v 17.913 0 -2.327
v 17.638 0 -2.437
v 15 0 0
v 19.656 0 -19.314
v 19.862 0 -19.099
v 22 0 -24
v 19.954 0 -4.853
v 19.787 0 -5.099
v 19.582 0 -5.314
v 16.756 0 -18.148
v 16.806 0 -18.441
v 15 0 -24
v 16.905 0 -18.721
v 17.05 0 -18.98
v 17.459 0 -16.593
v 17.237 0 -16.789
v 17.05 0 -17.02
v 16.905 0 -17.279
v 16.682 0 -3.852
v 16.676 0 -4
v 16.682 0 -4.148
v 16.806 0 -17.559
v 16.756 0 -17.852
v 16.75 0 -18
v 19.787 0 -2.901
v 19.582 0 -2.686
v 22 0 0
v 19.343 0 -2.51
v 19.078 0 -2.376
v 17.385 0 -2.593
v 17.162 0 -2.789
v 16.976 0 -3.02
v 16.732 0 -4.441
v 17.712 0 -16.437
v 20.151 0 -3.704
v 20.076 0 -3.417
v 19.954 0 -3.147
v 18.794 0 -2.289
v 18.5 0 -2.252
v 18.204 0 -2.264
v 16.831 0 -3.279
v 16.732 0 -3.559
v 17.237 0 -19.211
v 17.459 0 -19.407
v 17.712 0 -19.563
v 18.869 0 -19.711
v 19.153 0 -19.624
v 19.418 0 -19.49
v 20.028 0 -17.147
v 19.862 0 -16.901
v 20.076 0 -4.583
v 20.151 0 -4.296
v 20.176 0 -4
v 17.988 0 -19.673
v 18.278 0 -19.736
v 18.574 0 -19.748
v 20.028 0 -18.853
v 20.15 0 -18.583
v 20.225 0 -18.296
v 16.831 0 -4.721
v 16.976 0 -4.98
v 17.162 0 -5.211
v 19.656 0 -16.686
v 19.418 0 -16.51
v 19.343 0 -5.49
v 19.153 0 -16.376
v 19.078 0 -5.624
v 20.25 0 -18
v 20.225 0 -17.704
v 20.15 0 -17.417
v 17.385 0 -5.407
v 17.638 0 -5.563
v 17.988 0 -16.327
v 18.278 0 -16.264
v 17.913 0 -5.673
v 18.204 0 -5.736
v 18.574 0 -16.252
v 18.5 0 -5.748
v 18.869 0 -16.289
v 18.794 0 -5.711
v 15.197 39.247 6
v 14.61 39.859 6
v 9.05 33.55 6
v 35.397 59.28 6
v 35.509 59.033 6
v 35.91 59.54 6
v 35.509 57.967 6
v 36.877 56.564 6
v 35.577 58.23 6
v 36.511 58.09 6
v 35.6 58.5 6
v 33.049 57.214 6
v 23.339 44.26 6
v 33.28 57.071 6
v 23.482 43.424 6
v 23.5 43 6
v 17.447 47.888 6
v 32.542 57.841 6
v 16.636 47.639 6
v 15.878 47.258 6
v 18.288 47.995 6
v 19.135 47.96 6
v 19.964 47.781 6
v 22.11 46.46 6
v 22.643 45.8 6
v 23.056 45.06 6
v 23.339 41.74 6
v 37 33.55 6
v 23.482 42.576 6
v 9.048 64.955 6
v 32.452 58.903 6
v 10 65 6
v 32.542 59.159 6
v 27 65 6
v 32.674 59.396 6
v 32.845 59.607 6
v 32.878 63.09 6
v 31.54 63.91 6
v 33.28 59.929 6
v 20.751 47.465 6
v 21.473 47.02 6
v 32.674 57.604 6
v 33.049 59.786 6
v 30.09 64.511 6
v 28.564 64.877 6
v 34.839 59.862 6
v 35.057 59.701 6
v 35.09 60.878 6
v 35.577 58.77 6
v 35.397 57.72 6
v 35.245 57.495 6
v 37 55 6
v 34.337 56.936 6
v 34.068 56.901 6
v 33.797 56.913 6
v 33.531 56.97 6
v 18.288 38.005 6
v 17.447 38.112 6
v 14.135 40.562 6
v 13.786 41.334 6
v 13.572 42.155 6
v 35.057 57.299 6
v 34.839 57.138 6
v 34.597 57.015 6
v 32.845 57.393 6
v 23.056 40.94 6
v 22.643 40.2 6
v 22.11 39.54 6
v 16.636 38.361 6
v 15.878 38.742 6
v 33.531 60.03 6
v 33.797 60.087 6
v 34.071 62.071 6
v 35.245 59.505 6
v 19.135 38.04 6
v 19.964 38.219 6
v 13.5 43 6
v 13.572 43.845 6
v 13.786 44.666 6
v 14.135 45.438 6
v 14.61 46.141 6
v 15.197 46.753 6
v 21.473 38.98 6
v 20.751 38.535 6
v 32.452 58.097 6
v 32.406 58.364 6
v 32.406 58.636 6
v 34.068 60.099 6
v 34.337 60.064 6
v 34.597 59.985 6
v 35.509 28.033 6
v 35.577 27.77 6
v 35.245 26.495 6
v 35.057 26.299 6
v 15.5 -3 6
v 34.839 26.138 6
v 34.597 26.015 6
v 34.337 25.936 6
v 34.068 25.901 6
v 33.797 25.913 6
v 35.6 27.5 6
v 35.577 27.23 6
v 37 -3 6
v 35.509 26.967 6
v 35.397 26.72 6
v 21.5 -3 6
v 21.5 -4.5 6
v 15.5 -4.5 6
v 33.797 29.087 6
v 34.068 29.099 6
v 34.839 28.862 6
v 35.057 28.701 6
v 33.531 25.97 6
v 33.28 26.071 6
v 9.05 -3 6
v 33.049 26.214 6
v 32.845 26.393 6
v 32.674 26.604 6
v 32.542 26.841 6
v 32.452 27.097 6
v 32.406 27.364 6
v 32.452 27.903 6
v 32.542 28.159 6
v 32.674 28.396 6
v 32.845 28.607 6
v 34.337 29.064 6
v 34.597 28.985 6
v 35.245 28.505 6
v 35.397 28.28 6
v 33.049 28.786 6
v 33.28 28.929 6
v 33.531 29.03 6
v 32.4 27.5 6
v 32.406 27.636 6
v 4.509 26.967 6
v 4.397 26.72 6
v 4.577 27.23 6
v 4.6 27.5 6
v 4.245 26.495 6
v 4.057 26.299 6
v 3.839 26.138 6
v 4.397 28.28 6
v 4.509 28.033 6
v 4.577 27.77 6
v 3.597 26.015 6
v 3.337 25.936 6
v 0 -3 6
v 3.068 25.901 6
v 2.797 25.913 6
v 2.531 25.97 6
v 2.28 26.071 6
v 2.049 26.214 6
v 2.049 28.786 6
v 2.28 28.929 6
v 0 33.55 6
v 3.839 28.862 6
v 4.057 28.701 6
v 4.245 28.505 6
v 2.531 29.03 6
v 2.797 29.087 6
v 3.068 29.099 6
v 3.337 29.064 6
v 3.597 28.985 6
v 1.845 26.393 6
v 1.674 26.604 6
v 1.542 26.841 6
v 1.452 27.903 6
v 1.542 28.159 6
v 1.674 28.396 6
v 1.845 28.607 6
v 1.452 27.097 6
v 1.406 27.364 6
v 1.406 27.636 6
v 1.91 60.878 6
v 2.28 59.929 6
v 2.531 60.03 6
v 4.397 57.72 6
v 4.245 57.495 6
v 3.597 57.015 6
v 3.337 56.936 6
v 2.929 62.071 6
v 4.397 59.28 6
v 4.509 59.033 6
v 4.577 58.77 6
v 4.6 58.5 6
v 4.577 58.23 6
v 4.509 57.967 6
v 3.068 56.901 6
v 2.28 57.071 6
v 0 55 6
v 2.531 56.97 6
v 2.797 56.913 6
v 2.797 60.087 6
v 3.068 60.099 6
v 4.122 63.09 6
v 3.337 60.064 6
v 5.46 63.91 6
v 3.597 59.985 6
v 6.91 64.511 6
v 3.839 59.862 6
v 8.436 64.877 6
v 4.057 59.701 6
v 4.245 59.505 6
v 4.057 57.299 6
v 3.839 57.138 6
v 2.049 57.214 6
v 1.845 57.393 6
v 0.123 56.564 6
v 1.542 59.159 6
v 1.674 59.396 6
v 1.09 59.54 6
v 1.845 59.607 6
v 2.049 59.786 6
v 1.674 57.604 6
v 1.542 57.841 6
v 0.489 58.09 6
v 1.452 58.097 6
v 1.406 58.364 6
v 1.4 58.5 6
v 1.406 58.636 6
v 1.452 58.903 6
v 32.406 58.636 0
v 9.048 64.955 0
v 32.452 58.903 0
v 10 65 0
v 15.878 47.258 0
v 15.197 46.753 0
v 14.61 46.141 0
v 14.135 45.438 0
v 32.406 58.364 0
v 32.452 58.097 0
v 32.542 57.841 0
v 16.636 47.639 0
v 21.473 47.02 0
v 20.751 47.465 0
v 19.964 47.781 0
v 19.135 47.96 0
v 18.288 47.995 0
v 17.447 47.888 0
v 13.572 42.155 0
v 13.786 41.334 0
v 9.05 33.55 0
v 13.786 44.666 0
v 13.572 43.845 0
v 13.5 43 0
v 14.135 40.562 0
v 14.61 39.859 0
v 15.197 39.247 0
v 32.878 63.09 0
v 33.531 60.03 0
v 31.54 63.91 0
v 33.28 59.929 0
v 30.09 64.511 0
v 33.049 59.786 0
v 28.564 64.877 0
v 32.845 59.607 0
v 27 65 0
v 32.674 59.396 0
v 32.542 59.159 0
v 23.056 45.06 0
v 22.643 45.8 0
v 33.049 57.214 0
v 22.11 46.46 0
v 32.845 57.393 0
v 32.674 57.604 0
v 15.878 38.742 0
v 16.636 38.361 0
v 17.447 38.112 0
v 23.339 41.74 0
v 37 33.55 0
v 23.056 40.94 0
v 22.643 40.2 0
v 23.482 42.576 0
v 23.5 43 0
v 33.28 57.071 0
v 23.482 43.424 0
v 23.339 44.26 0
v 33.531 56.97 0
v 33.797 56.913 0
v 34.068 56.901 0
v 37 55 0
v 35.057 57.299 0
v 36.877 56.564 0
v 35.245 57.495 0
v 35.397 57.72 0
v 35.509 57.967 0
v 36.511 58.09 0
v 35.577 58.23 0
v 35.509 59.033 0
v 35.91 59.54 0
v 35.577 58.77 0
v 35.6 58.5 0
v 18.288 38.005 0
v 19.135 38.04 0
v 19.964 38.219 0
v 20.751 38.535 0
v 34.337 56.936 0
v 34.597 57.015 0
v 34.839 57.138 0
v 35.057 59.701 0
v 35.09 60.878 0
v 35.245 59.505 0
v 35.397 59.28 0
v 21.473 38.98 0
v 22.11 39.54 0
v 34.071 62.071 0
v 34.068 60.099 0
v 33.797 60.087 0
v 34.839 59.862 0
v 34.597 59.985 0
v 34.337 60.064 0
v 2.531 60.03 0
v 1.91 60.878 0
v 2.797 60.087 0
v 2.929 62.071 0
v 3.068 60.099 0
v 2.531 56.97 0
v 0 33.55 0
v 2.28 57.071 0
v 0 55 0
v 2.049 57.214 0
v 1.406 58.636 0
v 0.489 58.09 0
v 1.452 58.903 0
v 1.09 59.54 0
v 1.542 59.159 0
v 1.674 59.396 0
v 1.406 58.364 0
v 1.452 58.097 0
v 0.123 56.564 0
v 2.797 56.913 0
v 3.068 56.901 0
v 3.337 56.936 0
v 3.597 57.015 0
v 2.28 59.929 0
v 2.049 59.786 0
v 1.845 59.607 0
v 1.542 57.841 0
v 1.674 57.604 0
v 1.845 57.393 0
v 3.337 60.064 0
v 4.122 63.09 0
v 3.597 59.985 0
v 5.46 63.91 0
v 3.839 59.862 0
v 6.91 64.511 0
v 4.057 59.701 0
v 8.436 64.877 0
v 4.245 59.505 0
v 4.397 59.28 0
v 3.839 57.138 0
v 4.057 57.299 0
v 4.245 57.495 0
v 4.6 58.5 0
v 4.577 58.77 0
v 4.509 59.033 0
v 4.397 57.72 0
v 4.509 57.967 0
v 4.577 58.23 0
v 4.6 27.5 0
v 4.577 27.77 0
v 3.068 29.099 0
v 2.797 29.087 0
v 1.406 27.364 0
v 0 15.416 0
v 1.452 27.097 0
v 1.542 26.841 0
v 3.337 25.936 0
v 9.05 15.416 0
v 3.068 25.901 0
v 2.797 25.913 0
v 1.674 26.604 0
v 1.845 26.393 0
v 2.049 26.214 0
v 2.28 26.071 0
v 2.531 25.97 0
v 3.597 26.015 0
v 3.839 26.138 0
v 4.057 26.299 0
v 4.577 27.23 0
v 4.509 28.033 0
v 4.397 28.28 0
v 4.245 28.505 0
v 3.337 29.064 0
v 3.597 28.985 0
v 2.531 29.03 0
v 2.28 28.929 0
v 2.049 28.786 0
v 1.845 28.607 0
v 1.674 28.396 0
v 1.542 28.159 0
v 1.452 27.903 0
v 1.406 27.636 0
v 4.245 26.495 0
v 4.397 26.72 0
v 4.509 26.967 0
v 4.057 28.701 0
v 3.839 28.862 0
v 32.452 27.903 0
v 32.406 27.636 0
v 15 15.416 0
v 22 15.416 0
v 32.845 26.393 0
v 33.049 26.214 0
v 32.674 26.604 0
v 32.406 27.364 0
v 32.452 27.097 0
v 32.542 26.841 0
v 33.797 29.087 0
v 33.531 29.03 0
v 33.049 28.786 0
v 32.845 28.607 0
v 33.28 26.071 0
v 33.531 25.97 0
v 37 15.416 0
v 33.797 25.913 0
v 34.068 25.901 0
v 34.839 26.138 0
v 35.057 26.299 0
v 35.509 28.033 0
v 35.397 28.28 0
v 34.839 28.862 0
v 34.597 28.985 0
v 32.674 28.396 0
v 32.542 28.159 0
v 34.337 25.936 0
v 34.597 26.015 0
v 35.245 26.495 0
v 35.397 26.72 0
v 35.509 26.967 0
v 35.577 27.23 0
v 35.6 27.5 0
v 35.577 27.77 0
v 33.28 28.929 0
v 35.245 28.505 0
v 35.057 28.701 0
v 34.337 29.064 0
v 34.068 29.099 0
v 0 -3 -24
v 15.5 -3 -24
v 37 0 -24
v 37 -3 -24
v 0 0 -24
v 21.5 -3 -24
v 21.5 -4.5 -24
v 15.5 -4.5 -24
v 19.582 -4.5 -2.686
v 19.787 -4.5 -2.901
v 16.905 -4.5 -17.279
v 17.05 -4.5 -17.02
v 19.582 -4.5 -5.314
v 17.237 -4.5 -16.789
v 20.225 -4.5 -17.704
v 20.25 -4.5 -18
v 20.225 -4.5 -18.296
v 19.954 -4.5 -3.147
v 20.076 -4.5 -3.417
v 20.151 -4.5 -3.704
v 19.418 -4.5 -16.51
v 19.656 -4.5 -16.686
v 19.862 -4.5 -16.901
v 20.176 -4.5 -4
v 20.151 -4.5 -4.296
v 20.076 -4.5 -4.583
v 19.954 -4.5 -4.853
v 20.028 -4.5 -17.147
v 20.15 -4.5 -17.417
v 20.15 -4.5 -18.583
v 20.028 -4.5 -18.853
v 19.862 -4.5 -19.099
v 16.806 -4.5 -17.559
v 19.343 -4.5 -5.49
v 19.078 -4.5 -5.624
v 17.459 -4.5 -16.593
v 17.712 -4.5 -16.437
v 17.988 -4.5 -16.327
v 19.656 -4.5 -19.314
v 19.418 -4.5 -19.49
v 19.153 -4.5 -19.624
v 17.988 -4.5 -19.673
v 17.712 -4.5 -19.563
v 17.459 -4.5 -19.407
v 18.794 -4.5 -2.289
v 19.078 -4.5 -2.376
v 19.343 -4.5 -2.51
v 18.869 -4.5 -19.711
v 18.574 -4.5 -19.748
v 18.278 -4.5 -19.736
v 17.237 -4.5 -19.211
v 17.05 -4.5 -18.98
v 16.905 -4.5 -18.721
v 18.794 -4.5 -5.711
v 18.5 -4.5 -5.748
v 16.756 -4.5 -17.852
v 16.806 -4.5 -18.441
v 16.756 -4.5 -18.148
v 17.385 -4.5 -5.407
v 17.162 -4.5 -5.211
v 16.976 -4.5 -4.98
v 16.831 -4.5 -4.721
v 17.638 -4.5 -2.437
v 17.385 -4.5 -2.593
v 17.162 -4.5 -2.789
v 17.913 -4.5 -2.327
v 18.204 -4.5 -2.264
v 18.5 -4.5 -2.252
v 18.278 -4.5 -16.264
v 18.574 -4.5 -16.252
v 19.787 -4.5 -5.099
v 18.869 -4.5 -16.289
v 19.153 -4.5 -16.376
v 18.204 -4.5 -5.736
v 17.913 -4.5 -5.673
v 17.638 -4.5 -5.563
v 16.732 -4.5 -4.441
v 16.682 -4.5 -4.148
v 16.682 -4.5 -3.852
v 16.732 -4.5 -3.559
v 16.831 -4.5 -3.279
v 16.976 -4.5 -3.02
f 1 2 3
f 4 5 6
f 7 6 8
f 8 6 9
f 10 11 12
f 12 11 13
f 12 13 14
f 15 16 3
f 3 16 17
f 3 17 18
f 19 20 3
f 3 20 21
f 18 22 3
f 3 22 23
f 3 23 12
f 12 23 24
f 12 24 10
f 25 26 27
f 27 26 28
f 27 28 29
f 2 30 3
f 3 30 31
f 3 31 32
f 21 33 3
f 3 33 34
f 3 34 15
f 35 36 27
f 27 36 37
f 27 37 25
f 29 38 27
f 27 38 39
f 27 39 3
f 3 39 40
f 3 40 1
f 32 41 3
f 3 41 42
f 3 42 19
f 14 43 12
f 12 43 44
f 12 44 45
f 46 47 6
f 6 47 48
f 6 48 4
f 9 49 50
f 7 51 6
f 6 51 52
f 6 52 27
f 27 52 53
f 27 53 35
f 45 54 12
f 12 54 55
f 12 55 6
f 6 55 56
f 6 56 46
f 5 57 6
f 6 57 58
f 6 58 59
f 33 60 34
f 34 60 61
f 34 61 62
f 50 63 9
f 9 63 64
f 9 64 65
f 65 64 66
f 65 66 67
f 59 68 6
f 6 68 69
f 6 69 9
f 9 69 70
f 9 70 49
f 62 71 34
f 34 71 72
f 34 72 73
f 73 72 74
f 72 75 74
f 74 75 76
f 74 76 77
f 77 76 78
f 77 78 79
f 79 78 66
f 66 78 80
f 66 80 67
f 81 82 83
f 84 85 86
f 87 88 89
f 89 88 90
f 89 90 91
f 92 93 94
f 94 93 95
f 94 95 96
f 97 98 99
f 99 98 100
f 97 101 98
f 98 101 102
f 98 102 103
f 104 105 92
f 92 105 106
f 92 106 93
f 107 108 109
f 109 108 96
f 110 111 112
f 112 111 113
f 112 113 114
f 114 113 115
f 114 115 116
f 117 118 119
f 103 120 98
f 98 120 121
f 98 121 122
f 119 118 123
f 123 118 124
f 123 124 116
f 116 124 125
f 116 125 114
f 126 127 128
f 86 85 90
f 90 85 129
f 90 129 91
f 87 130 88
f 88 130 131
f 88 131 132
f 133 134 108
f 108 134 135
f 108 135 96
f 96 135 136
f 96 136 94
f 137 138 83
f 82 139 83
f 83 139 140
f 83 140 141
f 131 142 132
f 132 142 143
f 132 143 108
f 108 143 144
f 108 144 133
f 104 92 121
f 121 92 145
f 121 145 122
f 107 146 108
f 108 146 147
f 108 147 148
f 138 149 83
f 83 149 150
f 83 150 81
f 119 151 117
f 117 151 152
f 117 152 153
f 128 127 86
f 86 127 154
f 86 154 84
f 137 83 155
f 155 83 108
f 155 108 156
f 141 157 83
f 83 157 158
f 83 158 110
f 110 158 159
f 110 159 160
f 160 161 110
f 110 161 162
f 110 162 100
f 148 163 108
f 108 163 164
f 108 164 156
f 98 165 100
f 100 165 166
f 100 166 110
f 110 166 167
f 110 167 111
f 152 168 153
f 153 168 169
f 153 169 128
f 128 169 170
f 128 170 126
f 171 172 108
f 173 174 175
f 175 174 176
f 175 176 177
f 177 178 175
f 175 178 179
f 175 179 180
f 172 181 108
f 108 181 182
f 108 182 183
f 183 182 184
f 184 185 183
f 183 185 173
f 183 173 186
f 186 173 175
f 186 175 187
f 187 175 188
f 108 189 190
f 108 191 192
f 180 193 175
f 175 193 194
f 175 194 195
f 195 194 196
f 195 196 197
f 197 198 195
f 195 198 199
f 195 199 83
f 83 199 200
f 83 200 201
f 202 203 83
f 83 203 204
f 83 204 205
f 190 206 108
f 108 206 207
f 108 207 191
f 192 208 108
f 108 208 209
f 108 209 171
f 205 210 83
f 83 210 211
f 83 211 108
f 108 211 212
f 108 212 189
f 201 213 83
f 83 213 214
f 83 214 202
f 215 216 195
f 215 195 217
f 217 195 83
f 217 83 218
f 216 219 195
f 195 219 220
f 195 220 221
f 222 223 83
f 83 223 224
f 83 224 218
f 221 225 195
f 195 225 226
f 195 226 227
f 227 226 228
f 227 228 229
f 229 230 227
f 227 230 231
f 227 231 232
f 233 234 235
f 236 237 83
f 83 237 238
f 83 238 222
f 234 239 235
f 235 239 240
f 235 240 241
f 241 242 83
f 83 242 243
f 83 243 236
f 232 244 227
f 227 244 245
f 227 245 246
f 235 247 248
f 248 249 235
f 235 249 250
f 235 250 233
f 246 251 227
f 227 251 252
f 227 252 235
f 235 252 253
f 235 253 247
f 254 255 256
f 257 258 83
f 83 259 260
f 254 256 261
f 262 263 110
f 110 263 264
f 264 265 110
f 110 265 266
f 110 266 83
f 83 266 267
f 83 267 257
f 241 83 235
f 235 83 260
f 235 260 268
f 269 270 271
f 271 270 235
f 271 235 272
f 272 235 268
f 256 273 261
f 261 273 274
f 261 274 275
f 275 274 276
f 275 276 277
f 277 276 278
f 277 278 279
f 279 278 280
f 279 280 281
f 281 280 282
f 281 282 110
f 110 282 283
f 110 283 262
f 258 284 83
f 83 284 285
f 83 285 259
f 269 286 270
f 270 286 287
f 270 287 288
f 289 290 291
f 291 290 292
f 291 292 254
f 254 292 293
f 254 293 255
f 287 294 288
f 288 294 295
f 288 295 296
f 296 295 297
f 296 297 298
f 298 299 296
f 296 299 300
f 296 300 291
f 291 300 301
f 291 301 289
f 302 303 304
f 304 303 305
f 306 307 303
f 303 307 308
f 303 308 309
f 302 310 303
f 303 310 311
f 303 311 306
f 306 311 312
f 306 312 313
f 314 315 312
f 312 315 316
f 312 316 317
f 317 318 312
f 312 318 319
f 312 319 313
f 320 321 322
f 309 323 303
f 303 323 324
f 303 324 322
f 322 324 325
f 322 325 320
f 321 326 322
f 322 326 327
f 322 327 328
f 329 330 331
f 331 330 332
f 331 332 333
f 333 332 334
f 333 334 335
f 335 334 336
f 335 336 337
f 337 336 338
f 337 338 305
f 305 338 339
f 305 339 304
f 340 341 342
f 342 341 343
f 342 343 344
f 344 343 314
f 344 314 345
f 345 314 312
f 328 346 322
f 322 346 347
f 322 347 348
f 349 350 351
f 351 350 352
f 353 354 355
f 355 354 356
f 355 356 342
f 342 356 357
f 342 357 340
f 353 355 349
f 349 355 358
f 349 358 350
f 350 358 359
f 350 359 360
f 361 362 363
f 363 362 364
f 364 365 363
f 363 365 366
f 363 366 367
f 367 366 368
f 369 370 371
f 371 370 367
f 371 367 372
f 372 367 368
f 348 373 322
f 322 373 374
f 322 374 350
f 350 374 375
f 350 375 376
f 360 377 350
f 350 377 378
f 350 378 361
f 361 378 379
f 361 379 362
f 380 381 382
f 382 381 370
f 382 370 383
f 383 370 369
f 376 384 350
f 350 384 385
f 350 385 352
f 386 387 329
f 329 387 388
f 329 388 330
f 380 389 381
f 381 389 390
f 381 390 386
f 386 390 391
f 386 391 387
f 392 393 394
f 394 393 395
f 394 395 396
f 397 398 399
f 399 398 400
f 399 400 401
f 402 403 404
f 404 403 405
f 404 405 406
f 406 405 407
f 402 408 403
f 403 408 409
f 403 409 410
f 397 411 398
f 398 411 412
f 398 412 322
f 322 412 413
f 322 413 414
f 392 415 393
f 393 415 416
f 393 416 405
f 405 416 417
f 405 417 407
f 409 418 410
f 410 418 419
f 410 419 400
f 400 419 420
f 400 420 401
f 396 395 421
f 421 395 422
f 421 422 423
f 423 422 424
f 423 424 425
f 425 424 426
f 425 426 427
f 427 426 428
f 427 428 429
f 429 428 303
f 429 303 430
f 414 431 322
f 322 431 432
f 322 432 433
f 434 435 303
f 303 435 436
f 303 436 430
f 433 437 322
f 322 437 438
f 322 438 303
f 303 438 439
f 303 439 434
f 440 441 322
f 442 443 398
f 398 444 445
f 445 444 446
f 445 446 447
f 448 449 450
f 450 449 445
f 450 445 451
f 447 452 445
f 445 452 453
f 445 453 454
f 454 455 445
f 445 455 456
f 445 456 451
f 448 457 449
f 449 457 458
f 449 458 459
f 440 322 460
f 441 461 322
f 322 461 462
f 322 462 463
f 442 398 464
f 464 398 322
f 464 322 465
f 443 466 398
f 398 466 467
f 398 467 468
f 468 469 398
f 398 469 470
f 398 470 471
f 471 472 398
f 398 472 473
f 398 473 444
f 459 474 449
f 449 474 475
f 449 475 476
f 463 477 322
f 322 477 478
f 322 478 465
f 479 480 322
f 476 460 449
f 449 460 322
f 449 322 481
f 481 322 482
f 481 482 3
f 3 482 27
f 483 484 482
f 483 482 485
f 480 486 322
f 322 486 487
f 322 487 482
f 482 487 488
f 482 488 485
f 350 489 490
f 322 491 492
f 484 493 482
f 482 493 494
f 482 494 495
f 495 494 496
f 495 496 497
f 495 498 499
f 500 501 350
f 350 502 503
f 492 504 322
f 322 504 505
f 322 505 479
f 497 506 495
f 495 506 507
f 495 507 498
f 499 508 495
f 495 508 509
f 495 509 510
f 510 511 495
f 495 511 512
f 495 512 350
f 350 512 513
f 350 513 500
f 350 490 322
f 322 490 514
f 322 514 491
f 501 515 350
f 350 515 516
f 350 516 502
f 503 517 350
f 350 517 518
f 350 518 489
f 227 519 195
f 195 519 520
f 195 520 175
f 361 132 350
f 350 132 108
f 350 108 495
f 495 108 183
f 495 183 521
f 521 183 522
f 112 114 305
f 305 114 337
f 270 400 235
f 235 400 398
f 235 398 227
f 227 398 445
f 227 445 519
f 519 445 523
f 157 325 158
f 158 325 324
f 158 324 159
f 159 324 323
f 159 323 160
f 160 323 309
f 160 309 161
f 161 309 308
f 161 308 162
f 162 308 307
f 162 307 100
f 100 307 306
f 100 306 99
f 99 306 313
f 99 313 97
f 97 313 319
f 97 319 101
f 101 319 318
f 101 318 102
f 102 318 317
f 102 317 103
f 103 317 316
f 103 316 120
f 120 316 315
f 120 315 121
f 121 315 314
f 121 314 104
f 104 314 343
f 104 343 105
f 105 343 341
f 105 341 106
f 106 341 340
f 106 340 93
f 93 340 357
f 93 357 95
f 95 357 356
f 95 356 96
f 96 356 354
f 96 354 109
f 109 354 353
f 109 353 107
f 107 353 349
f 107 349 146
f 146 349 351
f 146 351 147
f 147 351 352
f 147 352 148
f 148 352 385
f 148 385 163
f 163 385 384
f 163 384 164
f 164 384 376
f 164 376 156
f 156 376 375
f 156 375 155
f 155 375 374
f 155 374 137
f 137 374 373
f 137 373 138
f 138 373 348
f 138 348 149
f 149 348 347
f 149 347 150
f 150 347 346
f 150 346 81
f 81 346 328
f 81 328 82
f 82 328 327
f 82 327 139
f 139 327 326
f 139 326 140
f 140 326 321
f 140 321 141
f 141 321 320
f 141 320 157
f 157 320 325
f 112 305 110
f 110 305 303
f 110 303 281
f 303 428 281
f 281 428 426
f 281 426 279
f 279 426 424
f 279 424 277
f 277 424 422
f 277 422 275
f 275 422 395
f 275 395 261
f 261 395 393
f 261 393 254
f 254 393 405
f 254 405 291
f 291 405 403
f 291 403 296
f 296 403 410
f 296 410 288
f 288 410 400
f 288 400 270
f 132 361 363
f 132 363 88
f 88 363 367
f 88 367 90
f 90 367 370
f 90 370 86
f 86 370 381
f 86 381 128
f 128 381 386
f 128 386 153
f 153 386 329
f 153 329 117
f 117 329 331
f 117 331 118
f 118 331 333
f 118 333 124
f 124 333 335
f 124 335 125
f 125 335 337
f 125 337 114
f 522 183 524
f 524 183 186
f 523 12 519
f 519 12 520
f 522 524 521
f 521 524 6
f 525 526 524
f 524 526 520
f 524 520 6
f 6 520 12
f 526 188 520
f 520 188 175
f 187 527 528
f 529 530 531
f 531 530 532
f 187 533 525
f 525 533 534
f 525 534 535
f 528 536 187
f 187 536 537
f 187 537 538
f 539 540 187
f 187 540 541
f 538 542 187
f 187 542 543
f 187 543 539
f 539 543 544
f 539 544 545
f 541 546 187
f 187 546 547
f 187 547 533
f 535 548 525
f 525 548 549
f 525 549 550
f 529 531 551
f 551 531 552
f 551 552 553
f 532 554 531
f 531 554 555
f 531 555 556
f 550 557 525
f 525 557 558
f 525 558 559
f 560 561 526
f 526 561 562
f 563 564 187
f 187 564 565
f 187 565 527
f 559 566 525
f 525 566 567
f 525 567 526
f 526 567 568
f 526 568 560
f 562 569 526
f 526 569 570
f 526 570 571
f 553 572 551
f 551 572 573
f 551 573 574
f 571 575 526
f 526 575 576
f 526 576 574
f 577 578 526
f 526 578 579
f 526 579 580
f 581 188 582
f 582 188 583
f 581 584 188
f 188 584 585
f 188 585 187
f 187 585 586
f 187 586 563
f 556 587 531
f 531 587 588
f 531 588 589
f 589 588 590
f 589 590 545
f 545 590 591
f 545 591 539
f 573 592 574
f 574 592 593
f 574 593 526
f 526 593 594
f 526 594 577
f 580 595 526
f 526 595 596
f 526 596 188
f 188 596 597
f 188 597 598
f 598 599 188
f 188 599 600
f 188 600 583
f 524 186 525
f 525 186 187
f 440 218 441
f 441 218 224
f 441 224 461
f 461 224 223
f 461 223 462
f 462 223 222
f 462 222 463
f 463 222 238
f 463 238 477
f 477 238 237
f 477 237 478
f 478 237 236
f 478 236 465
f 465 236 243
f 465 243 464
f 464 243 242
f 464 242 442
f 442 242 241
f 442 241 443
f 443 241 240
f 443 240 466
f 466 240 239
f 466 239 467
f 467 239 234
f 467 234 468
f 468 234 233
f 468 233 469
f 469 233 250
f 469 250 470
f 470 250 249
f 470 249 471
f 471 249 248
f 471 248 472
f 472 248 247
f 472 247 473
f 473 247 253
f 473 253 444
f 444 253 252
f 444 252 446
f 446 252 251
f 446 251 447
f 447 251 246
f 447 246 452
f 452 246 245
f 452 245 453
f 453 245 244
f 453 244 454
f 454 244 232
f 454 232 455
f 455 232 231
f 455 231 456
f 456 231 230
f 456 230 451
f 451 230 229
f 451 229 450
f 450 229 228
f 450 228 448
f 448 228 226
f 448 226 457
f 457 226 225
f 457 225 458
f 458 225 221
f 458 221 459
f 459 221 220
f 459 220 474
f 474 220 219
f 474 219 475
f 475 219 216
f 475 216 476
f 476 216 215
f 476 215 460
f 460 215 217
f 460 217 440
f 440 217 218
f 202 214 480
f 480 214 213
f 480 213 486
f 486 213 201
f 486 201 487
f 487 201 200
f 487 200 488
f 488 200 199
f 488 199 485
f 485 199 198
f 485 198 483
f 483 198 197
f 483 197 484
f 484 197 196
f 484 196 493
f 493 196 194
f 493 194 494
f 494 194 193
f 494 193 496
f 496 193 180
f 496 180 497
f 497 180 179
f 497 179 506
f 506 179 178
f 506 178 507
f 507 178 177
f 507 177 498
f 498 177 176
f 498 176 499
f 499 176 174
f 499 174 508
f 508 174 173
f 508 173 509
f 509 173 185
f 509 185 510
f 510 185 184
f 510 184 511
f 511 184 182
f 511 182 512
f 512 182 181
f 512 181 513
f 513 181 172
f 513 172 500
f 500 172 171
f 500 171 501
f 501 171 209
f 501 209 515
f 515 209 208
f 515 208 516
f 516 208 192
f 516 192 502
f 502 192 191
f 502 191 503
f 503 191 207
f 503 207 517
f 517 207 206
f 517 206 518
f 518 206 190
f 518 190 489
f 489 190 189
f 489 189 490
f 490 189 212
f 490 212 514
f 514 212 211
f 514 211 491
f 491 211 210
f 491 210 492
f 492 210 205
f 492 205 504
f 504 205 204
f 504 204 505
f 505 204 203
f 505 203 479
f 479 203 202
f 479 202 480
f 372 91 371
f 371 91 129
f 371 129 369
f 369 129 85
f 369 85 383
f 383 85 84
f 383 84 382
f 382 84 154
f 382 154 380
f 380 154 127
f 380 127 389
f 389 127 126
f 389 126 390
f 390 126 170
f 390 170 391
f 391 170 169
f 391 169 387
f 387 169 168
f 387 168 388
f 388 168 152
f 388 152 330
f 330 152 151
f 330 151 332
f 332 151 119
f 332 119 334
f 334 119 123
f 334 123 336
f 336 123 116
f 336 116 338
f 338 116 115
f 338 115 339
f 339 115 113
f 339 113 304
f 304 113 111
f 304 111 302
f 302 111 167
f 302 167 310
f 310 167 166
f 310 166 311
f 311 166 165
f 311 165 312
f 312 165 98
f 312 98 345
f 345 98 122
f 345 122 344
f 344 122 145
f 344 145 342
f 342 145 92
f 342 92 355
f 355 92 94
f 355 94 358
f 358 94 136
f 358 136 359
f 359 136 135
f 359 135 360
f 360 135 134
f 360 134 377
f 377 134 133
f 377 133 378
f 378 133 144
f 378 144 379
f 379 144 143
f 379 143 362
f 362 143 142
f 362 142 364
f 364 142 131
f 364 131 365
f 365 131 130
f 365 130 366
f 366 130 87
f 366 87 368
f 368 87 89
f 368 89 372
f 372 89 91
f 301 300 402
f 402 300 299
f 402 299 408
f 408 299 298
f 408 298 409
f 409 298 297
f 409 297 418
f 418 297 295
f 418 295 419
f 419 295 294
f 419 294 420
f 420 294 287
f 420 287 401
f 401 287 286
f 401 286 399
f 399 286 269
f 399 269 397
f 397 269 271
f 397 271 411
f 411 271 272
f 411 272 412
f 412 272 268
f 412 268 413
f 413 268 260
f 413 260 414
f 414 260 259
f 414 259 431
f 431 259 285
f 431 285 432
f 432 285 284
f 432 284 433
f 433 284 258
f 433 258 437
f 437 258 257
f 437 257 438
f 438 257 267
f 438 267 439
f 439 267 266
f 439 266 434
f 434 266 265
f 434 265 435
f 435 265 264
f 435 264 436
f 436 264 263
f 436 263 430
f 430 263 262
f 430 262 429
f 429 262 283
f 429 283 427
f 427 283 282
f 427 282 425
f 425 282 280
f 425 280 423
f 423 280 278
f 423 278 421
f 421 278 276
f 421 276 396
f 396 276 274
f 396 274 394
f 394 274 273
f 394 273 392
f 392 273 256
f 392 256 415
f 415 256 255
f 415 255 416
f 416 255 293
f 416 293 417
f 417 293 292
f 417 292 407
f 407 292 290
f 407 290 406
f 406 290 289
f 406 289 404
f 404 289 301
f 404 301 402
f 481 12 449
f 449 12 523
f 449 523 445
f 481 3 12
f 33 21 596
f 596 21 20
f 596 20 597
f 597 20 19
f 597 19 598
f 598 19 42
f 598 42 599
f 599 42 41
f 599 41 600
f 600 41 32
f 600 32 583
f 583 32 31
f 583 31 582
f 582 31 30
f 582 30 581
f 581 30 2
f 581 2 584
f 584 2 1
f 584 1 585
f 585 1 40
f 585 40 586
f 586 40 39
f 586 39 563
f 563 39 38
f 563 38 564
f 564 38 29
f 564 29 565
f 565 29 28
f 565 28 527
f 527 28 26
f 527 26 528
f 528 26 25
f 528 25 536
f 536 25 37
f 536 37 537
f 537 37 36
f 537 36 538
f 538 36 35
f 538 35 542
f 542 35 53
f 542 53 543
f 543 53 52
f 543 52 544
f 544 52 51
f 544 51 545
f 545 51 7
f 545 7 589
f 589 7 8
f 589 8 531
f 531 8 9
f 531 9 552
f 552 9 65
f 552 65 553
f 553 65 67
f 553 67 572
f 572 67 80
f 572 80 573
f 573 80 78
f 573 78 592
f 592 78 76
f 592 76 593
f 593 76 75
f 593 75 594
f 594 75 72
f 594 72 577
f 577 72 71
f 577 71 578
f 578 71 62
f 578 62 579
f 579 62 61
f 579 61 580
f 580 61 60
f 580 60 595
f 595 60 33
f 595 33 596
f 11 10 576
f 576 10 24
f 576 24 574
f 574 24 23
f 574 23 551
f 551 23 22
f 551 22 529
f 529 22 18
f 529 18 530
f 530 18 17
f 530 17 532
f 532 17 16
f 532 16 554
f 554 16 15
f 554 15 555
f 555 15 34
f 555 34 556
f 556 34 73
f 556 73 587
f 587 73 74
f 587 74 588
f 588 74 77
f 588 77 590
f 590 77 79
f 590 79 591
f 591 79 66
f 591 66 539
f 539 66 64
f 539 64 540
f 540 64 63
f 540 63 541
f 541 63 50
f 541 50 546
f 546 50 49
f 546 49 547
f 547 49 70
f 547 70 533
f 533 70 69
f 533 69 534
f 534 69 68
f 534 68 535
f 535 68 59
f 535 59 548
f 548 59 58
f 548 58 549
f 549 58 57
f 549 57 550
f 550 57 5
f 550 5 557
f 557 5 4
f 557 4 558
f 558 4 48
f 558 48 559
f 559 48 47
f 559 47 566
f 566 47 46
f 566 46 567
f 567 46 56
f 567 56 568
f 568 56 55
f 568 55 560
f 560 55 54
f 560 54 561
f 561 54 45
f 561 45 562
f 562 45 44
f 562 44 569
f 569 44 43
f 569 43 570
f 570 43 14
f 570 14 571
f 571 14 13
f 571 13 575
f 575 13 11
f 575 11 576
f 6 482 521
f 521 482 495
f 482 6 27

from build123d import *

# Parameters (mm, degrees)
SKETCH_1_R          = 5
EXTRUDE_1_DEPTH     = 6
FILLET_1_R          = 10
SKETCH_4_W          = 37
SKETCH_4_H          = 3
EXTRUDE_2_DEPTH     = 30
SKETCH_5_W          = 6
SKETCH_5_H          = 1.5
EXTRUDE_3_DEPTH     = 30
SKETCH_6_R          = 1.6
CUT_EXTRUDE_1_DEPTH = 10
EXTRUDE_5_DEPTH     = 15
SKETCH_10_R         = 1.75
CUT_EXTRUDE_3_DEPTH = 1000
EXTRUDE_6_DEPTH     = 15


with BuildPart() as part:
    # Эскиз1 → Бобышка-Вытянуть1 (new body)
    with BuildSketch(Plane.XY):
        Polygon((0, 0), (0, 65), (16, 65), (21, 65), (37, 65), (37, 0), align=None)
        with Locations((18.5, 43)):
            Circle(SKETCH_1_R, mode=Mode.SUBTRACT)
    extrude(amount=EXTRUDE_1_DEPTH)

    # Скругление1
    fillet_1_edges = [part.edges().sort_by_distance(p)[0] for p in [
        (0, 65, 3),
        (37, 65, 3),
    ]]
    fillet(fillet_1_edges, radius=FILLET_1_R)

    # Эскиз4 → Бобышка-Вытянуть2 (add)
    with BuildSketch(Plane.XY.offset(6)):
        with Locations((18.5, -1.5)):
            Rectangle(SKETCH_4_W, SKETCH_4_H)
    extrude(amount=-EXTRUDE_2_DEPTH)

    # Эскиз5 → Бобышка-Вытянуть3 (add)
    with BuildSketch(Plane.XY.offset(6)):
        with Locations((18.5, -3.75)):
            Rectangle(SKETCH_5_W, SKETCH_5_H)
    extrude(amount=-EXTRUDE_3_DEPTH)

    # Эскиз6 → Вырез-Вытянуть1 (cut)
    with BuildSketch(Plane.XY.offset(6)):
        with Locations((3, 27.5)):
            Circle(SKETCH_6_R)
        with Locations((3, 58.5)):
            Circle(SKETCH_6_R)
        with Locations((34, 27.5)):
            Circle(SKETCH_6_R)
        with Locations((34, 58.5)):
            Circle(SKETCH_6_R)
    extrude(amount=-CUT_EXTRUDE_1_DEPTH, mode=Mode.SUBTRACT)

    # Эскиз9 → Бобышка-Вытянуть5 (add)
    with BuildSketch(Plane.ZY):
        Polygon((-24, 0), (0, 0), (0, 15.416167011), align=None)
    extrude(amount=-EXTRUDE_5_DEPTH)

    # Эскиз10 → Вырез-Вытянуть3 (cut)
    with BuildSketch(Plane.XZ.offset(4.5)):
        with Locations((18.5, -18)):
            Circle(SKETCH_10_R)
        with Locations((18.425804873, -4)):
            Circle(SKETCH_10_R)
    extrude(amount=-CUT_EXTRUDE_3_DEPTH, mode=Mode.SUBTRACT)

    # Эскиз11 → Бобышка-Вытянуть6 (add)
    with BuildSketch(Plane(origin=(37, 0, 0), x_dir=(0, 0, -1), z_dir=(1, 0, 0))):
        Polygon((0, 0), (24, 0), (0, 15.416167011), align=None)
    extrude(amount=-EXTRUDE_6_DEPTH)


solid = part.part
